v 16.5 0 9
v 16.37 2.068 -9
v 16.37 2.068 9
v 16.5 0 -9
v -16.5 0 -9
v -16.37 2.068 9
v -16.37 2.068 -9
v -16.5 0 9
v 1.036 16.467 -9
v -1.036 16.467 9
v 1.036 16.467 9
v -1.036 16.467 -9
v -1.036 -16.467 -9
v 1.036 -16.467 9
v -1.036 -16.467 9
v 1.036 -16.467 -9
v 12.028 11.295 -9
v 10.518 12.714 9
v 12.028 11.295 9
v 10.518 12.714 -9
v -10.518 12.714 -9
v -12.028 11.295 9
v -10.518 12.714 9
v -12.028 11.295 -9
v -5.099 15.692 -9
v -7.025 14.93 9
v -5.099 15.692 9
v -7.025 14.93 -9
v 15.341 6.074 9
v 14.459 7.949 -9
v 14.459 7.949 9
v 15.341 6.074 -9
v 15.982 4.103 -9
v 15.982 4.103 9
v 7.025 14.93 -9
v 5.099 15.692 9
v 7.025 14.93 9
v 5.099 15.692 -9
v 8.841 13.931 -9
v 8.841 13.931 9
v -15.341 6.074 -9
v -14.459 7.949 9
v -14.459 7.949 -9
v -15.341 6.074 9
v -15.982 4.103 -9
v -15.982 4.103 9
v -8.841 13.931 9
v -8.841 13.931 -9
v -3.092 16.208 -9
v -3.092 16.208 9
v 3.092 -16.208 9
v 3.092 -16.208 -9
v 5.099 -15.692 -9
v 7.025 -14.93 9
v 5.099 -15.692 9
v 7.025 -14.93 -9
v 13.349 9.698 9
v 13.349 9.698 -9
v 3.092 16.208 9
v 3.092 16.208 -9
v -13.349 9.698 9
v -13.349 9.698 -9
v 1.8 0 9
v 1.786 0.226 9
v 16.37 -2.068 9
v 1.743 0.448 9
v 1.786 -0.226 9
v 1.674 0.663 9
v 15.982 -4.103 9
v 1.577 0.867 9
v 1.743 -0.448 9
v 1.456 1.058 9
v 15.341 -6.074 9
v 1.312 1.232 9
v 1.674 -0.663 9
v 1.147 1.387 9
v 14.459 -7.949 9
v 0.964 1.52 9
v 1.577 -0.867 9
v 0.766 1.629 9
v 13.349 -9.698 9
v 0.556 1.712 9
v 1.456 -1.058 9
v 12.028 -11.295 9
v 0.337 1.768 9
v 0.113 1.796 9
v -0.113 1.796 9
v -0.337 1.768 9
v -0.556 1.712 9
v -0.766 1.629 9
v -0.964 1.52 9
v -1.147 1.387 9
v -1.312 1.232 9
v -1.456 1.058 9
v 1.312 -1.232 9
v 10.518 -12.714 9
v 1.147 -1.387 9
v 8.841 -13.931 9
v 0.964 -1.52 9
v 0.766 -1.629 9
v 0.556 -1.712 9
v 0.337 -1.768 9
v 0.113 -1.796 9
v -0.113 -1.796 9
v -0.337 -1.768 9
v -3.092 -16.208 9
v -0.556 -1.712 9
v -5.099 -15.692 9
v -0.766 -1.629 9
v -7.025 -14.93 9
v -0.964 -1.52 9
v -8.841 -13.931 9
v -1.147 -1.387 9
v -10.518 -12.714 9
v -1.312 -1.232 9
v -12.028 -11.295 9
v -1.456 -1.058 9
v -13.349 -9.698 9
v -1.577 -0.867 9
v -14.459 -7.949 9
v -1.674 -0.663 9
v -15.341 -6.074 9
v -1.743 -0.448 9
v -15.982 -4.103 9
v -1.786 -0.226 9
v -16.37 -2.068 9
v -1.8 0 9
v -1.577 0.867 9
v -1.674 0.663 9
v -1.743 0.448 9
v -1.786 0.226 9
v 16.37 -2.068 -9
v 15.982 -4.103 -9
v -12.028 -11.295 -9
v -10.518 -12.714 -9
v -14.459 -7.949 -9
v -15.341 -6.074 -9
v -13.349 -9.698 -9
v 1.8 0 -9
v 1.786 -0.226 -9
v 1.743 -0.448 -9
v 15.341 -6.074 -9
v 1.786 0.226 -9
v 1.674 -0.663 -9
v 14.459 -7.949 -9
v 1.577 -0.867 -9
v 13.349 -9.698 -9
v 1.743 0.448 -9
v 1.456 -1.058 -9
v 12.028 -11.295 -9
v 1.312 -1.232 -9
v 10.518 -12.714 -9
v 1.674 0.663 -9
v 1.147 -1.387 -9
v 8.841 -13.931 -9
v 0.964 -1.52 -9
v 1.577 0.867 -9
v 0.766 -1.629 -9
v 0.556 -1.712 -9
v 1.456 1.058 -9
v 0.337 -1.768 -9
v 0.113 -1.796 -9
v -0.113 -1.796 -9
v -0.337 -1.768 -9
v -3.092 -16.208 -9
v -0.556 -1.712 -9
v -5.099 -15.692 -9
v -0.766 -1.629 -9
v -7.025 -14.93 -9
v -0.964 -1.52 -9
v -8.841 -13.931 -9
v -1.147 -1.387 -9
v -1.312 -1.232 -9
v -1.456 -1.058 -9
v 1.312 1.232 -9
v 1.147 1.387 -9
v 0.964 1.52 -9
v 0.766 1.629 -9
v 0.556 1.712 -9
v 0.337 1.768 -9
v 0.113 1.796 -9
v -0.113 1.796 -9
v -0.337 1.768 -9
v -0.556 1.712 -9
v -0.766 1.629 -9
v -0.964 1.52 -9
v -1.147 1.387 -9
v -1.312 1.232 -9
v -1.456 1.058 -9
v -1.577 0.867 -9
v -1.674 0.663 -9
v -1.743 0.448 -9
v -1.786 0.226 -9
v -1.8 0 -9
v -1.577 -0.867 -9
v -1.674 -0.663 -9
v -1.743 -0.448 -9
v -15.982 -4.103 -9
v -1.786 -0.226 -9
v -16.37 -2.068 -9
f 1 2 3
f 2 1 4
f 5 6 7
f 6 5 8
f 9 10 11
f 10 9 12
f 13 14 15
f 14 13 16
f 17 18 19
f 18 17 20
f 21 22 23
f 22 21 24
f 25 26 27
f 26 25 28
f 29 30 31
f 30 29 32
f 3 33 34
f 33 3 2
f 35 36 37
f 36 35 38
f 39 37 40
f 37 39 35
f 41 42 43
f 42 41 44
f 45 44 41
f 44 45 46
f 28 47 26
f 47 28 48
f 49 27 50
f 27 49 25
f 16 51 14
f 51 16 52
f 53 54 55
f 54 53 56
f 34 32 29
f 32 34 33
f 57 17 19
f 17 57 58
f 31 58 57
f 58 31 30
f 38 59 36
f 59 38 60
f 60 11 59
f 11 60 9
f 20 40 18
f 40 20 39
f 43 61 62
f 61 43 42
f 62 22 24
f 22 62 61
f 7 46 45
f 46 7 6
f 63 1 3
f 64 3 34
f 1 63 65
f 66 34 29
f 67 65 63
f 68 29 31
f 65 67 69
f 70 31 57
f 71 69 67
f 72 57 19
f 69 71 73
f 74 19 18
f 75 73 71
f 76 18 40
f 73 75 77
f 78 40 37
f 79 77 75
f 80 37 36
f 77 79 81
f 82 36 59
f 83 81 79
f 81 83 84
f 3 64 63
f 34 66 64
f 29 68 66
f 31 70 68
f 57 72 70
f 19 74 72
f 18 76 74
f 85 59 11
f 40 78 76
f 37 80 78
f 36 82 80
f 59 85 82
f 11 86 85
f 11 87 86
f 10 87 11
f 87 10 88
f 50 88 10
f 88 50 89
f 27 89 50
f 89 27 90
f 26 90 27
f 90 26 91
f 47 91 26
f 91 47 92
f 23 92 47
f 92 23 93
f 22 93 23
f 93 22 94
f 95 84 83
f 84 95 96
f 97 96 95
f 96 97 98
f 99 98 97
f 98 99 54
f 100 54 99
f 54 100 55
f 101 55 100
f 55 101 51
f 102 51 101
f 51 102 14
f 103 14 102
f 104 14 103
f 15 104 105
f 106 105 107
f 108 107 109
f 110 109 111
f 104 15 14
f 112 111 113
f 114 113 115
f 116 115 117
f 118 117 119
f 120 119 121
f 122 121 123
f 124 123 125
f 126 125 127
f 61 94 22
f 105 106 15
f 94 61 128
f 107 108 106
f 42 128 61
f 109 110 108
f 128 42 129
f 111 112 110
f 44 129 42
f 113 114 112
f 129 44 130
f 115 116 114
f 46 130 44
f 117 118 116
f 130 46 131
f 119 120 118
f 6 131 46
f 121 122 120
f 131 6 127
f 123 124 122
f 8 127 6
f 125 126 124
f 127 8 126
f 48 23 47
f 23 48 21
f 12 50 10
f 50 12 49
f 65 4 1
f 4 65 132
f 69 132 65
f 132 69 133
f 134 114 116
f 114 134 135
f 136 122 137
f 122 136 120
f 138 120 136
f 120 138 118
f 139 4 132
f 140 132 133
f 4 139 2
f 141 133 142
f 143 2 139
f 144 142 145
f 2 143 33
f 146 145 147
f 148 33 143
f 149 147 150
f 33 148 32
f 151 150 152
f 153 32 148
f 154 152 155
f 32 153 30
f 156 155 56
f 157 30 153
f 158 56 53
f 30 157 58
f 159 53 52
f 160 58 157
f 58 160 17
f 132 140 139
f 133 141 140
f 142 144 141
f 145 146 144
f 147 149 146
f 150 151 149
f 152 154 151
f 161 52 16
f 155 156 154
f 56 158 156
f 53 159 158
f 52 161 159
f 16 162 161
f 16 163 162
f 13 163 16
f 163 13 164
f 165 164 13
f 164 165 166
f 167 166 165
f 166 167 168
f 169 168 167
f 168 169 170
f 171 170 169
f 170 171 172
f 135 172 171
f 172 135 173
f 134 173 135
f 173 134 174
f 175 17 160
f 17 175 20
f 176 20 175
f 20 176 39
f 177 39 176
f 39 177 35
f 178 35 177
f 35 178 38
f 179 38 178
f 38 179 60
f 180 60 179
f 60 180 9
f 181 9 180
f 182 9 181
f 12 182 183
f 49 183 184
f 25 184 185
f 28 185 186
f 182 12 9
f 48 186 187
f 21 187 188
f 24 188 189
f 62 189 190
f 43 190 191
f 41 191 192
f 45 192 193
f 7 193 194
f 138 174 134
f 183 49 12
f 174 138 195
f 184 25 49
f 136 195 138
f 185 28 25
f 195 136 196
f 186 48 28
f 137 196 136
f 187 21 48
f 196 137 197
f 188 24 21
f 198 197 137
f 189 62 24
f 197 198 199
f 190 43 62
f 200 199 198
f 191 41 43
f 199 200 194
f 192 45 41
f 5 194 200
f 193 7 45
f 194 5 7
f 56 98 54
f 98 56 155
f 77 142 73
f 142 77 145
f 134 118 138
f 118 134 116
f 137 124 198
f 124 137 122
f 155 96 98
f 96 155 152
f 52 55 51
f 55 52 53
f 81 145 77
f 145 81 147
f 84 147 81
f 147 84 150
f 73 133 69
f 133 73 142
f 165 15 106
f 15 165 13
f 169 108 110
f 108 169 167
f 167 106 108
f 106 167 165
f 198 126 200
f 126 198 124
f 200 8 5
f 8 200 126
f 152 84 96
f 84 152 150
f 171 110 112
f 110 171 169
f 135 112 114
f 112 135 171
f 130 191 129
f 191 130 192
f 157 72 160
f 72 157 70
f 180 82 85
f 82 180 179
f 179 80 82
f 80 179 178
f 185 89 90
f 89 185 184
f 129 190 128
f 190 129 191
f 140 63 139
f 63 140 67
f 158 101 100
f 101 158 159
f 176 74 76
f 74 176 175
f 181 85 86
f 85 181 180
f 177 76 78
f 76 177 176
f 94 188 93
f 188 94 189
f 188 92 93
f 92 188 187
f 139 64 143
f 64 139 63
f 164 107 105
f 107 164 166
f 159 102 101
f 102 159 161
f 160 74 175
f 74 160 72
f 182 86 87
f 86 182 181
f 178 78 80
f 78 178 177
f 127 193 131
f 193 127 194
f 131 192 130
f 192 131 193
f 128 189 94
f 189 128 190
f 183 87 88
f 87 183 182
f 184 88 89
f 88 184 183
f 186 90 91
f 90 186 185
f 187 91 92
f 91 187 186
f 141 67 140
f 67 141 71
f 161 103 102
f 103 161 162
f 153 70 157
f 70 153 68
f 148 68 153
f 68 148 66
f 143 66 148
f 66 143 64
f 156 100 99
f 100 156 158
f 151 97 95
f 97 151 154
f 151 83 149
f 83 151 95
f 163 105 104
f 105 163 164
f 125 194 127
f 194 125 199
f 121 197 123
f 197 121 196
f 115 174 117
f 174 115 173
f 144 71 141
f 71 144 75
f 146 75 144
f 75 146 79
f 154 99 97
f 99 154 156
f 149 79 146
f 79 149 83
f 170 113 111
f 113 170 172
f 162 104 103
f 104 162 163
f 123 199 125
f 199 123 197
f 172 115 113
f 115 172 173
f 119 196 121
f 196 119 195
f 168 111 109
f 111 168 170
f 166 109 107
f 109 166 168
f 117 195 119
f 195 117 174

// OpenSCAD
$fn = 50;


difference() {
	union() {
		translate(v = [0, 0, -9.0000000000]) {
			cylinder(h = 18, r = 16.5000000000);
		}
	}
	union() {
		translate(v = [0, 0, -100.0000000000]) {
			cylinder(h = 200, r = 1.8000000000);
		}
	}
}
